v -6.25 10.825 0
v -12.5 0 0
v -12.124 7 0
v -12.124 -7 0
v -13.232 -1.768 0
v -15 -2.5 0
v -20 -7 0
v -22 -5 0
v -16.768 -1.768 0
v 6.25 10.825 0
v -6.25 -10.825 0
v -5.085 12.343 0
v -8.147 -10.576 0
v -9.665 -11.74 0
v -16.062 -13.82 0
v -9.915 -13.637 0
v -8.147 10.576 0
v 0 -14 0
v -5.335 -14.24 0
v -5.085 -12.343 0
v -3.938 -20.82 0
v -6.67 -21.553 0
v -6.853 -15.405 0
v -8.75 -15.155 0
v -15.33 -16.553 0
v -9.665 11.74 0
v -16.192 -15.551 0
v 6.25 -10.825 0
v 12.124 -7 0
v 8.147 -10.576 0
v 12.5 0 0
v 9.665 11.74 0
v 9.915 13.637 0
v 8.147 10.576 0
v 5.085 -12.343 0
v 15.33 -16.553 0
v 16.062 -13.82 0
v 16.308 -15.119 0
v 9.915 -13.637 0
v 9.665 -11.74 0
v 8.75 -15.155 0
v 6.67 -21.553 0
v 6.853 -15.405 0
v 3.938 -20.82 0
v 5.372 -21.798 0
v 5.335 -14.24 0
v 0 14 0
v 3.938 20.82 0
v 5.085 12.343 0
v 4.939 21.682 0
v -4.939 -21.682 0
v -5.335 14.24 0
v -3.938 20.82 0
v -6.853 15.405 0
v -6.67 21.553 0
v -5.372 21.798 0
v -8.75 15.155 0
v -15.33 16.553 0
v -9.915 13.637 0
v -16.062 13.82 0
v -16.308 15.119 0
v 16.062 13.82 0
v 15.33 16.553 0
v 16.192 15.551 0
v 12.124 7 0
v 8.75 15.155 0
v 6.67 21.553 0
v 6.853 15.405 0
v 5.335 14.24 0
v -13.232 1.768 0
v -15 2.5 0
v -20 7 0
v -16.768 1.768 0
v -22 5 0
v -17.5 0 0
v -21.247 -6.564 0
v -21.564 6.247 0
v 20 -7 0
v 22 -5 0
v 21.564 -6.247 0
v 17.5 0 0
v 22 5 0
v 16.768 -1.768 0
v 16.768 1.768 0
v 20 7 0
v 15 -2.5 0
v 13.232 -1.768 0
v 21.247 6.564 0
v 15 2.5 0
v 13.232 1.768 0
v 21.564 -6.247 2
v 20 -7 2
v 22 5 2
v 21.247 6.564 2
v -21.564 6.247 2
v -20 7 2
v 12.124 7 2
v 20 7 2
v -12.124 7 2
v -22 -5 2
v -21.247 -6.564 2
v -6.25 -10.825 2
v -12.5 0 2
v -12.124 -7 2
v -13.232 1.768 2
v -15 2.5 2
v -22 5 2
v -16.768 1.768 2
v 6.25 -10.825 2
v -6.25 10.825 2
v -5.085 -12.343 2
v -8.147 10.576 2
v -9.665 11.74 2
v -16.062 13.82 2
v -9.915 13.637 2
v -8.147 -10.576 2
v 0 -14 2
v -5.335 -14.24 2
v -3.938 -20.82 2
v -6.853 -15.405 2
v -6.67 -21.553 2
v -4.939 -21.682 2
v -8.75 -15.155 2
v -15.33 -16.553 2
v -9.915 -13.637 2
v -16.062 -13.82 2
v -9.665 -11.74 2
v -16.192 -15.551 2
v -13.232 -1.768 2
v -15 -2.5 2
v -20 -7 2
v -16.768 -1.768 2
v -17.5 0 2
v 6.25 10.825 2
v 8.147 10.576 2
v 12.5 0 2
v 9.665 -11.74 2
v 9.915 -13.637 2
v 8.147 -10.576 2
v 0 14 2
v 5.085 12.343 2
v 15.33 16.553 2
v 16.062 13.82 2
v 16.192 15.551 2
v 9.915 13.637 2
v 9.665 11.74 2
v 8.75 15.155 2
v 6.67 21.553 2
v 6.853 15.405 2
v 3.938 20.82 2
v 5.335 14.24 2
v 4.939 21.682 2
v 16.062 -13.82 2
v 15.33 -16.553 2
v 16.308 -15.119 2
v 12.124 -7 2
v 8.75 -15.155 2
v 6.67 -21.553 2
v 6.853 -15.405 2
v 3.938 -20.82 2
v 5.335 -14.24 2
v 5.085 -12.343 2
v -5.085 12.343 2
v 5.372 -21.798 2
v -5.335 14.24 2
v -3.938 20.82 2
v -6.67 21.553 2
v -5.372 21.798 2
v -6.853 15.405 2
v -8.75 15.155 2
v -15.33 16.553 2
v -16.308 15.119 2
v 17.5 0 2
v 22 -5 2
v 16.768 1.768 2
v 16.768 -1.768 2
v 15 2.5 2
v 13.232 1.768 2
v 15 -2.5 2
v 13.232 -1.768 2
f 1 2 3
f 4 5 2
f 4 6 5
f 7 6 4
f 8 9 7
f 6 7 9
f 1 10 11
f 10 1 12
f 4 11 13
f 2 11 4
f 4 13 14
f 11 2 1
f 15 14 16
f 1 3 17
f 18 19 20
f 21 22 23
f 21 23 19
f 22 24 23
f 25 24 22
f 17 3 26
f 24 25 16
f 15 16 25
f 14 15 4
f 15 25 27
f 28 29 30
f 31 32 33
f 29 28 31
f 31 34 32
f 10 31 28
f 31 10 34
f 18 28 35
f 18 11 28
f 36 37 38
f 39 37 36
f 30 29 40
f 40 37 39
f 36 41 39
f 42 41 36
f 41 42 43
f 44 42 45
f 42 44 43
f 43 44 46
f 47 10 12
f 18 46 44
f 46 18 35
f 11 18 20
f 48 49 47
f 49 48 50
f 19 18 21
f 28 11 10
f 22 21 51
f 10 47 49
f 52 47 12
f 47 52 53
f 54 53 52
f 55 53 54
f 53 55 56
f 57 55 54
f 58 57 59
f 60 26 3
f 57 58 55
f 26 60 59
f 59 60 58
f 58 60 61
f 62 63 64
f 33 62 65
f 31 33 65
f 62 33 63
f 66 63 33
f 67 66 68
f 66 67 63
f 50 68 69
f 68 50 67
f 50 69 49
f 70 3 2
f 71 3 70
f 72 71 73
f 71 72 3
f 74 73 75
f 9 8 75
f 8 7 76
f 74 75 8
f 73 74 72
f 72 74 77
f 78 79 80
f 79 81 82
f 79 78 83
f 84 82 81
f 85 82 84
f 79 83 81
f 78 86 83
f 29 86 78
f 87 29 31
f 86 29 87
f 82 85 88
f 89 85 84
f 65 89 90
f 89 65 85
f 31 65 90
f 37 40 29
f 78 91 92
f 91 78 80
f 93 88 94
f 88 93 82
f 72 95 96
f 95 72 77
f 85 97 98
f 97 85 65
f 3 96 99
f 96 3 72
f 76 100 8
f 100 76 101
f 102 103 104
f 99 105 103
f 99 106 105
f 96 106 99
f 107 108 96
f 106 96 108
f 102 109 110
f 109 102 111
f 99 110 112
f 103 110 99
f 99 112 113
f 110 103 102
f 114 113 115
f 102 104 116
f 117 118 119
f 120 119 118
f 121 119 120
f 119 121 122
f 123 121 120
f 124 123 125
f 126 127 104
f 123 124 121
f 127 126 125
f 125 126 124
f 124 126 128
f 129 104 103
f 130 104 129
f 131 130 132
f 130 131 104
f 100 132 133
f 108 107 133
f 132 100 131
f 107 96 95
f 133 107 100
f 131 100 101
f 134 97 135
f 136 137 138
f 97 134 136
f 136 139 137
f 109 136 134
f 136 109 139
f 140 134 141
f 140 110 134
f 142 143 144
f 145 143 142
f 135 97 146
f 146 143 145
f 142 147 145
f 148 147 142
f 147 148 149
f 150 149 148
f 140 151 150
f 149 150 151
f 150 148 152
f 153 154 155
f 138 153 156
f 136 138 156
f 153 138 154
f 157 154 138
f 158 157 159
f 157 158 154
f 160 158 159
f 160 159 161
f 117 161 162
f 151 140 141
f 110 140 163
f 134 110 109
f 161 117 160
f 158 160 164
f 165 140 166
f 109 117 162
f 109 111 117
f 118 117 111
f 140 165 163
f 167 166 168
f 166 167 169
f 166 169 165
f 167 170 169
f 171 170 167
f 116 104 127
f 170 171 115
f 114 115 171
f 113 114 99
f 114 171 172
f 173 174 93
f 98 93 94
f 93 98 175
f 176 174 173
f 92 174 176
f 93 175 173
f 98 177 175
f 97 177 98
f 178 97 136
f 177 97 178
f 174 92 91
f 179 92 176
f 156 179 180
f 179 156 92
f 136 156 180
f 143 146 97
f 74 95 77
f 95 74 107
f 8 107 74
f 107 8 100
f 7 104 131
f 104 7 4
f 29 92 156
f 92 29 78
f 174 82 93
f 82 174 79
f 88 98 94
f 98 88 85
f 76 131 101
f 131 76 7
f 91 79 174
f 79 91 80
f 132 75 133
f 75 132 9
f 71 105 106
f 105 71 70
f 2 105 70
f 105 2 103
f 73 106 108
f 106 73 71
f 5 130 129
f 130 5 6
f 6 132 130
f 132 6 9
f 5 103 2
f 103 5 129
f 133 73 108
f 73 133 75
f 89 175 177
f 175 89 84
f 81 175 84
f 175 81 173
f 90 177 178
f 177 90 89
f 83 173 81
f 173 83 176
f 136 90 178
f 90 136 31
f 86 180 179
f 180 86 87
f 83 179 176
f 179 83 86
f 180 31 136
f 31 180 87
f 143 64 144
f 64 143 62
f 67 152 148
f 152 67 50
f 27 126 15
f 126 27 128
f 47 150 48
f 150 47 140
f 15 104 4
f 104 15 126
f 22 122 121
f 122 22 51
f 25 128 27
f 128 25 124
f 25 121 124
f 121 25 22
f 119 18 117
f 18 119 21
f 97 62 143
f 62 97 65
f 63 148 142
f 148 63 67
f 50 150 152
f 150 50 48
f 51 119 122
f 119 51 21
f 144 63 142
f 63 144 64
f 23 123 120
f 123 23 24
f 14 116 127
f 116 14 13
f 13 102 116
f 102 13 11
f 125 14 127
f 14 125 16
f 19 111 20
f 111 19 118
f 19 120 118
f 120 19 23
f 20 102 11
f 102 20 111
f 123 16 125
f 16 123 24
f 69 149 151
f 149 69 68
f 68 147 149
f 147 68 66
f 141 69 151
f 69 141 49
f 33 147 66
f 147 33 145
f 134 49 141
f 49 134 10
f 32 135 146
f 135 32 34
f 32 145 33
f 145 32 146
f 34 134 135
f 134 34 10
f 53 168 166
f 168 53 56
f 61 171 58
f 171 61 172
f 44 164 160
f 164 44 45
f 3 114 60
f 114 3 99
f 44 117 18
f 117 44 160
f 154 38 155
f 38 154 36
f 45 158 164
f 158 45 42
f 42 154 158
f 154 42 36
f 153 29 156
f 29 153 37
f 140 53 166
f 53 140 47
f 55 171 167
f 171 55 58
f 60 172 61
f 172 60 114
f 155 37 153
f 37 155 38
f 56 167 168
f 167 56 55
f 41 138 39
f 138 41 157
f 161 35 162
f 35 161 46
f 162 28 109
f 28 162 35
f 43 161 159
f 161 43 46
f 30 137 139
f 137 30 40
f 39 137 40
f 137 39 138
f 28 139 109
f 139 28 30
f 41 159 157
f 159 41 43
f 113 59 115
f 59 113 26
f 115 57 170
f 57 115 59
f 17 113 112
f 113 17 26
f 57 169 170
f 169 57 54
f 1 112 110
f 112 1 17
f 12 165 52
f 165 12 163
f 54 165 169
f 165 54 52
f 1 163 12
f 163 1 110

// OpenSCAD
// Parameters for the link plate
plate_length = 40; // Length of the plate
plate_width = 10;  // Width of the plate
plate_thickness = 2; // Thickness of the plate
hole_diameter = 5; // Diameter of the holes
hole_spacing = 30; // Distance between the centers of the holes
curvature = 2; // Amount of curvature along the length

// Function to create a single link plate
module link_plate() {
    difference() {
        // Create the curved plate
        linear_extrude(height = plate_thickness) {
            offset(r = curvature) {
                square([plate_length, plate_width], center = true);
            }
        }
        // Create the holes
        translate([-hole_spacing / 2, 0, plate_thickness / 2])
            cylinder(r = hole_diameter / 2, h = plate_thickness, center = true);
        translate([hole_spacing / 2, 0, plate_thickness / 2])
            cylinder(r = hole_diameter / 2, h = plate_thickness, center = true);
    }
}

// Assemble the six link plates in a symmetrical arrangement
module flexible_coupling() {
    for (i = [0:5]) {
        rotate([0, 0, i * 60]) // Rotate each plate by 60 degrees
            translate([0, 0, 0]) // Keep all plates in the same vertical position
                link_plate();
    }
}

// Render the flexible coupling
flexible_coupling();
